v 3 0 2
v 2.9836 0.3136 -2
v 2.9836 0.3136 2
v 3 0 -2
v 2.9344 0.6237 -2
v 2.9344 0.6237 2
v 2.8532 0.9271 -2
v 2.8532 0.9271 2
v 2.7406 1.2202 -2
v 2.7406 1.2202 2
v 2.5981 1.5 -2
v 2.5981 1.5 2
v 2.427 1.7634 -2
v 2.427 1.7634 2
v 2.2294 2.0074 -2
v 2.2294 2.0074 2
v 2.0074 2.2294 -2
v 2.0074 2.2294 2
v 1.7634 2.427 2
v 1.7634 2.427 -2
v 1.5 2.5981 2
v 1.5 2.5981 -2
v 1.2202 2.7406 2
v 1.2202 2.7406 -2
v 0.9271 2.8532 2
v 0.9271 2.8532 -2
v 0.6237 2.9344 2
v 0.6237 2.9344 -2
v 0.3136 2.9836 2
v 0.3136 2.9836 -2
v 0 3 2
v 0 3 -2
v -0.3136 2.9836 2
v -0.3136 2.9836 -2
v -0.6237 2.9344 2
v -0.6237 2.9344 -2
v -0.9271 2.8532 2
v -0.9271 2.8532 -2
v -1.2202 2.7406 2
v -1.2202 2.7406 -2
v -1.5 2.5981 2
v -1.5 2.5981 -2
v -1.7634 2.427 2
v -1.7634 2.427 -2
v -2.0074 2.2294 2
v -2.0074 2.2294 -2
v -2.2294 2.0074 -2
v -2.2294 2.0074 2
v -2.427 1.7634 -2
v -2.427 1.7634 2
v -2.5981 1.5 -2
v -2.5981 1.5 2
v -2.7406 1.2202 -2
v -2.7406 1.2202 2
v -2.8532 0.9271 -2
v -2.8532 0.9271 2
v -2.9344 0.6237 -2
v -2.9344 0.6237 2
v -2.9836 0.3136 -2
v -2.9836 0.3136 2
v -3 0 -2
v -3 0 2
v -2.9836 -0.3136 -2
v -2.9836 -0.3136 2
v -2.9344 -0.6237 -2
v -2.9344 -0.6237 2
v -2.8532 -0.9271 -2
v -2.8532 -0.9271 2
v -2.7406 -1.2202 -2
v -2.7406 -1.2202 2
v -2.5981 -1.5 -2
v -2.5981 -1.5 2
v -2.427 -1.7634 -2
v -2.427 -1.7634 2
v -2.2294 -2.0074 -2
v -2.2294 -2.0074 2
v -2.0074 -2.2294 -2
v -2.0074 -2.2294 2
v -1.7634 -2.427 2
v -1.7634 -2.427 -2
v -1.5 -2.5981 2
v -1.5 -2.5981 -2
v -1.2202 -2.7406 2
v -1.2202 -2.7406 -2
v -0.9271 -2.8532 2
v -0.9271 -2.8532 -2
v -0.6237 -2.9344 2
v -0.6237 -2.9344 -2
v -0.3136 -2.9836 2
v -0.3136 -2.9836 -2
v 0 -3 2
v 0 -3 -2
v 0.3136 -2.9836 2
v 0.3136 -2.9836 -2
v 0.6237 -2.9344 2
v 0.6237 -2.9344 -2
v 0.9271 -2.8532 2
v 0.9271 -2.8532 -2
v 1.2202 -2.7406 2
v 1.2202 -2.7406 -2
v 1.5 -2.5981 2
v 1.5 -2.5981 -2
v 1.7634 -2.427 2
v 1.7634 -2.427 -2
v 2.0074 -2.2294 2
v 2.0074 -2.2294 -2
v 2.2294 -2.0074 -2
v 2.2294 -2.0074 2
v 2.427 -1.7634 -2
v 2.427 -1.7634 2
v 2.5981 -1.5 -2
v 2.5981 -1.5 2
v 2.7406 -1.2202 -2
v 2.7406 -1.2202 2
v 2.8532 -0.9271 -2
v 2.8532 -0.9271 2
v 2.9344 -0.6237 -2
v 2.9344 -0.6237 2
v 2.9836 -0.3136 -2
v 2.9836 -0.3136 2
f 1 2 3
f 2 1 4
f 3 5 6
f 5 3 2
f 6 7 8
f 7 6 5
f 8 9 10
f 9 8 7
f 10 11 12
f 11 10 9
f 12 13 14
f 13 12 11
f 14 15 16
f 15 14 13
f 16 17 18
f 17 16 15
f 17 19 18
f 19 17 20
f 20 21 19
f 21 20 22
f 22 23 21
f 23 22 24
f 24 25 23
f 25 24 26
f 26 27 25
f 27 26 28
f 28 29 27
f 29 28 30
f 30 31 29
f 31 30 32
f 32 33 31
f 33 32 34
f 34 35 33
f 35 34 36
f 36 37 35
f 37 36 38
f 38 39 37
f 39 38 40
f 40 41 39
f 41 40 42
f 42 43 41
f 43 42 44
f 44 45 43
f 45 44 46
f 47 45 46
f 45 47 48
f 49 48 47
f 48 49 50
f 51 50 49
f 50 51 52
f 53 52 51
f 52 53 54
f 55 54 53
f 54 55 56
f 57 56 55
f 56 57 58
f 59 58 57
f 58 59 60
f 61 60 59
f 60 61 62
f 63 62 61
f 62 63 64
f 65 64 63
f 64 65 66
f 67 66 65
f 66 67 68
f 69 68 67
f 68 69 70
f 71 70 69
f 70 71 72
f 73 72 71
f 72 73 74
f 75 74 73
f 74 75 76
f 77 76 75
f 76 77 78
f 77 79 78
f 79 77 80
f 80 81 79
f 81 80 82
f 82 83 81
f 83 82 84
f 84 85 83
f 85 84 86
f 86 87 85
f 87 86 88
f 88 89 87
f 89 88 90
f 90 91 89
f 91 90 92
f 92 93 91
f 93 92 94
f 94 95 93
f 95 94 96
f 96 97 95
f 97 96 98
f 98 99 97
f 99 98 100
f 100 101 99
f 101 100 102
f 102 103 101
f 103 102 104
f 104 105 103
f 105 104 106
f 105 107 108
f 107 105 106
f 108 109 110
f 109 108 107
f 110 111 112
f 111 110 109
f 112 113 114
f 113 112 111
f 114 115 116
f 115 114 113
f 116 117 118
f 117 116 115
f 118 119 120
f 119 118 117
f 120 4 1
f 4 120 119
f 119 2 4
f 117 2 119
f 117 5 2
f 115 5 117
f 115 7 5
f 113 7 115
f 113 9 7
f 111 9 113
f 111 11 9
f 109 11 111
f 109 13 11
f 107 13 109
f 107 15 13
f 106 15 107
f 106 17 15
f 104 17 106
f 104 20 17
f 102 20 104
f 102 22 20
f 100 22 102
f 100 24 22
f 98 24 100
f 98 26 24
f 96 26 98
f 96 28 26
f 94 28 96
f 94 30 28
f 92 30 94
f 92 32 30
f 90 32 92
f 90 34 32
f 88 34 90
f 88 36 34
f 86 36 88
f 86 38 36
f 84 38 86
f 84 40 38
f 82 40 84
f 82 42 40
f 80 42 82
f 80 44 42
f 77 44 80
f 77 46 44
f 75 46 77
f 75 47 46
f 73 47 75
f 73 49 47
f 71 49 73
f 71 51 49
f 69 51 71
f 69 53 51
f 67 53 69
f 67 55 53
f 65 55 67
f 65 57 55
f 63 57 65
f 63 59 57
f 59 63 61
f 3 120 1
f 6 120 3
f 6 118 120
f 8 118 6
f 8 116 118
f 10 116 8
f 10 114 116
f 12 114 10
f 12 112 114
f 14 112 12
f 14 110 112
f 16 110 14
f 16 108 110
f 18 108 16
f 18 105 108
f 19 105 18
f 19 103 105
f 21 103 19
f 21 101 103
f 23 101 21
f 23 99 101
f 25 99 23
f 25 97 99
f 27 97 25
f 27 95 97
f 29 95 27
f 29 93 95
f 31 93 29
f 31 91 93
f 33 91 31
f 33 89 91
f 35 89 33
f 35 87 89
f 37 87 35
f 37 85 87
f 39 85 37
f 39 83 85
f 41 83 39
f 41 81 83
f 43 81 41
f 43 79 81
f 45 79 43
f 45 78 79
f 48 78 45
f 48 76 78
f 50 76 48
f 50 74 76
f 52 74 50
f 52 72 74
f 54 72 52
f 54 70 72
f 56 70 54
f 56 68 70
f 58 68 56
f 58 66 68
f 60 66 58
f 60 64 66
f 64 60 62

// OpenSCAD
//ESP Spacer

$fn=60;
color("WhiteSmoke")
cylinder(h = 4, r1 = 3, r2 = 3, center = true); 
